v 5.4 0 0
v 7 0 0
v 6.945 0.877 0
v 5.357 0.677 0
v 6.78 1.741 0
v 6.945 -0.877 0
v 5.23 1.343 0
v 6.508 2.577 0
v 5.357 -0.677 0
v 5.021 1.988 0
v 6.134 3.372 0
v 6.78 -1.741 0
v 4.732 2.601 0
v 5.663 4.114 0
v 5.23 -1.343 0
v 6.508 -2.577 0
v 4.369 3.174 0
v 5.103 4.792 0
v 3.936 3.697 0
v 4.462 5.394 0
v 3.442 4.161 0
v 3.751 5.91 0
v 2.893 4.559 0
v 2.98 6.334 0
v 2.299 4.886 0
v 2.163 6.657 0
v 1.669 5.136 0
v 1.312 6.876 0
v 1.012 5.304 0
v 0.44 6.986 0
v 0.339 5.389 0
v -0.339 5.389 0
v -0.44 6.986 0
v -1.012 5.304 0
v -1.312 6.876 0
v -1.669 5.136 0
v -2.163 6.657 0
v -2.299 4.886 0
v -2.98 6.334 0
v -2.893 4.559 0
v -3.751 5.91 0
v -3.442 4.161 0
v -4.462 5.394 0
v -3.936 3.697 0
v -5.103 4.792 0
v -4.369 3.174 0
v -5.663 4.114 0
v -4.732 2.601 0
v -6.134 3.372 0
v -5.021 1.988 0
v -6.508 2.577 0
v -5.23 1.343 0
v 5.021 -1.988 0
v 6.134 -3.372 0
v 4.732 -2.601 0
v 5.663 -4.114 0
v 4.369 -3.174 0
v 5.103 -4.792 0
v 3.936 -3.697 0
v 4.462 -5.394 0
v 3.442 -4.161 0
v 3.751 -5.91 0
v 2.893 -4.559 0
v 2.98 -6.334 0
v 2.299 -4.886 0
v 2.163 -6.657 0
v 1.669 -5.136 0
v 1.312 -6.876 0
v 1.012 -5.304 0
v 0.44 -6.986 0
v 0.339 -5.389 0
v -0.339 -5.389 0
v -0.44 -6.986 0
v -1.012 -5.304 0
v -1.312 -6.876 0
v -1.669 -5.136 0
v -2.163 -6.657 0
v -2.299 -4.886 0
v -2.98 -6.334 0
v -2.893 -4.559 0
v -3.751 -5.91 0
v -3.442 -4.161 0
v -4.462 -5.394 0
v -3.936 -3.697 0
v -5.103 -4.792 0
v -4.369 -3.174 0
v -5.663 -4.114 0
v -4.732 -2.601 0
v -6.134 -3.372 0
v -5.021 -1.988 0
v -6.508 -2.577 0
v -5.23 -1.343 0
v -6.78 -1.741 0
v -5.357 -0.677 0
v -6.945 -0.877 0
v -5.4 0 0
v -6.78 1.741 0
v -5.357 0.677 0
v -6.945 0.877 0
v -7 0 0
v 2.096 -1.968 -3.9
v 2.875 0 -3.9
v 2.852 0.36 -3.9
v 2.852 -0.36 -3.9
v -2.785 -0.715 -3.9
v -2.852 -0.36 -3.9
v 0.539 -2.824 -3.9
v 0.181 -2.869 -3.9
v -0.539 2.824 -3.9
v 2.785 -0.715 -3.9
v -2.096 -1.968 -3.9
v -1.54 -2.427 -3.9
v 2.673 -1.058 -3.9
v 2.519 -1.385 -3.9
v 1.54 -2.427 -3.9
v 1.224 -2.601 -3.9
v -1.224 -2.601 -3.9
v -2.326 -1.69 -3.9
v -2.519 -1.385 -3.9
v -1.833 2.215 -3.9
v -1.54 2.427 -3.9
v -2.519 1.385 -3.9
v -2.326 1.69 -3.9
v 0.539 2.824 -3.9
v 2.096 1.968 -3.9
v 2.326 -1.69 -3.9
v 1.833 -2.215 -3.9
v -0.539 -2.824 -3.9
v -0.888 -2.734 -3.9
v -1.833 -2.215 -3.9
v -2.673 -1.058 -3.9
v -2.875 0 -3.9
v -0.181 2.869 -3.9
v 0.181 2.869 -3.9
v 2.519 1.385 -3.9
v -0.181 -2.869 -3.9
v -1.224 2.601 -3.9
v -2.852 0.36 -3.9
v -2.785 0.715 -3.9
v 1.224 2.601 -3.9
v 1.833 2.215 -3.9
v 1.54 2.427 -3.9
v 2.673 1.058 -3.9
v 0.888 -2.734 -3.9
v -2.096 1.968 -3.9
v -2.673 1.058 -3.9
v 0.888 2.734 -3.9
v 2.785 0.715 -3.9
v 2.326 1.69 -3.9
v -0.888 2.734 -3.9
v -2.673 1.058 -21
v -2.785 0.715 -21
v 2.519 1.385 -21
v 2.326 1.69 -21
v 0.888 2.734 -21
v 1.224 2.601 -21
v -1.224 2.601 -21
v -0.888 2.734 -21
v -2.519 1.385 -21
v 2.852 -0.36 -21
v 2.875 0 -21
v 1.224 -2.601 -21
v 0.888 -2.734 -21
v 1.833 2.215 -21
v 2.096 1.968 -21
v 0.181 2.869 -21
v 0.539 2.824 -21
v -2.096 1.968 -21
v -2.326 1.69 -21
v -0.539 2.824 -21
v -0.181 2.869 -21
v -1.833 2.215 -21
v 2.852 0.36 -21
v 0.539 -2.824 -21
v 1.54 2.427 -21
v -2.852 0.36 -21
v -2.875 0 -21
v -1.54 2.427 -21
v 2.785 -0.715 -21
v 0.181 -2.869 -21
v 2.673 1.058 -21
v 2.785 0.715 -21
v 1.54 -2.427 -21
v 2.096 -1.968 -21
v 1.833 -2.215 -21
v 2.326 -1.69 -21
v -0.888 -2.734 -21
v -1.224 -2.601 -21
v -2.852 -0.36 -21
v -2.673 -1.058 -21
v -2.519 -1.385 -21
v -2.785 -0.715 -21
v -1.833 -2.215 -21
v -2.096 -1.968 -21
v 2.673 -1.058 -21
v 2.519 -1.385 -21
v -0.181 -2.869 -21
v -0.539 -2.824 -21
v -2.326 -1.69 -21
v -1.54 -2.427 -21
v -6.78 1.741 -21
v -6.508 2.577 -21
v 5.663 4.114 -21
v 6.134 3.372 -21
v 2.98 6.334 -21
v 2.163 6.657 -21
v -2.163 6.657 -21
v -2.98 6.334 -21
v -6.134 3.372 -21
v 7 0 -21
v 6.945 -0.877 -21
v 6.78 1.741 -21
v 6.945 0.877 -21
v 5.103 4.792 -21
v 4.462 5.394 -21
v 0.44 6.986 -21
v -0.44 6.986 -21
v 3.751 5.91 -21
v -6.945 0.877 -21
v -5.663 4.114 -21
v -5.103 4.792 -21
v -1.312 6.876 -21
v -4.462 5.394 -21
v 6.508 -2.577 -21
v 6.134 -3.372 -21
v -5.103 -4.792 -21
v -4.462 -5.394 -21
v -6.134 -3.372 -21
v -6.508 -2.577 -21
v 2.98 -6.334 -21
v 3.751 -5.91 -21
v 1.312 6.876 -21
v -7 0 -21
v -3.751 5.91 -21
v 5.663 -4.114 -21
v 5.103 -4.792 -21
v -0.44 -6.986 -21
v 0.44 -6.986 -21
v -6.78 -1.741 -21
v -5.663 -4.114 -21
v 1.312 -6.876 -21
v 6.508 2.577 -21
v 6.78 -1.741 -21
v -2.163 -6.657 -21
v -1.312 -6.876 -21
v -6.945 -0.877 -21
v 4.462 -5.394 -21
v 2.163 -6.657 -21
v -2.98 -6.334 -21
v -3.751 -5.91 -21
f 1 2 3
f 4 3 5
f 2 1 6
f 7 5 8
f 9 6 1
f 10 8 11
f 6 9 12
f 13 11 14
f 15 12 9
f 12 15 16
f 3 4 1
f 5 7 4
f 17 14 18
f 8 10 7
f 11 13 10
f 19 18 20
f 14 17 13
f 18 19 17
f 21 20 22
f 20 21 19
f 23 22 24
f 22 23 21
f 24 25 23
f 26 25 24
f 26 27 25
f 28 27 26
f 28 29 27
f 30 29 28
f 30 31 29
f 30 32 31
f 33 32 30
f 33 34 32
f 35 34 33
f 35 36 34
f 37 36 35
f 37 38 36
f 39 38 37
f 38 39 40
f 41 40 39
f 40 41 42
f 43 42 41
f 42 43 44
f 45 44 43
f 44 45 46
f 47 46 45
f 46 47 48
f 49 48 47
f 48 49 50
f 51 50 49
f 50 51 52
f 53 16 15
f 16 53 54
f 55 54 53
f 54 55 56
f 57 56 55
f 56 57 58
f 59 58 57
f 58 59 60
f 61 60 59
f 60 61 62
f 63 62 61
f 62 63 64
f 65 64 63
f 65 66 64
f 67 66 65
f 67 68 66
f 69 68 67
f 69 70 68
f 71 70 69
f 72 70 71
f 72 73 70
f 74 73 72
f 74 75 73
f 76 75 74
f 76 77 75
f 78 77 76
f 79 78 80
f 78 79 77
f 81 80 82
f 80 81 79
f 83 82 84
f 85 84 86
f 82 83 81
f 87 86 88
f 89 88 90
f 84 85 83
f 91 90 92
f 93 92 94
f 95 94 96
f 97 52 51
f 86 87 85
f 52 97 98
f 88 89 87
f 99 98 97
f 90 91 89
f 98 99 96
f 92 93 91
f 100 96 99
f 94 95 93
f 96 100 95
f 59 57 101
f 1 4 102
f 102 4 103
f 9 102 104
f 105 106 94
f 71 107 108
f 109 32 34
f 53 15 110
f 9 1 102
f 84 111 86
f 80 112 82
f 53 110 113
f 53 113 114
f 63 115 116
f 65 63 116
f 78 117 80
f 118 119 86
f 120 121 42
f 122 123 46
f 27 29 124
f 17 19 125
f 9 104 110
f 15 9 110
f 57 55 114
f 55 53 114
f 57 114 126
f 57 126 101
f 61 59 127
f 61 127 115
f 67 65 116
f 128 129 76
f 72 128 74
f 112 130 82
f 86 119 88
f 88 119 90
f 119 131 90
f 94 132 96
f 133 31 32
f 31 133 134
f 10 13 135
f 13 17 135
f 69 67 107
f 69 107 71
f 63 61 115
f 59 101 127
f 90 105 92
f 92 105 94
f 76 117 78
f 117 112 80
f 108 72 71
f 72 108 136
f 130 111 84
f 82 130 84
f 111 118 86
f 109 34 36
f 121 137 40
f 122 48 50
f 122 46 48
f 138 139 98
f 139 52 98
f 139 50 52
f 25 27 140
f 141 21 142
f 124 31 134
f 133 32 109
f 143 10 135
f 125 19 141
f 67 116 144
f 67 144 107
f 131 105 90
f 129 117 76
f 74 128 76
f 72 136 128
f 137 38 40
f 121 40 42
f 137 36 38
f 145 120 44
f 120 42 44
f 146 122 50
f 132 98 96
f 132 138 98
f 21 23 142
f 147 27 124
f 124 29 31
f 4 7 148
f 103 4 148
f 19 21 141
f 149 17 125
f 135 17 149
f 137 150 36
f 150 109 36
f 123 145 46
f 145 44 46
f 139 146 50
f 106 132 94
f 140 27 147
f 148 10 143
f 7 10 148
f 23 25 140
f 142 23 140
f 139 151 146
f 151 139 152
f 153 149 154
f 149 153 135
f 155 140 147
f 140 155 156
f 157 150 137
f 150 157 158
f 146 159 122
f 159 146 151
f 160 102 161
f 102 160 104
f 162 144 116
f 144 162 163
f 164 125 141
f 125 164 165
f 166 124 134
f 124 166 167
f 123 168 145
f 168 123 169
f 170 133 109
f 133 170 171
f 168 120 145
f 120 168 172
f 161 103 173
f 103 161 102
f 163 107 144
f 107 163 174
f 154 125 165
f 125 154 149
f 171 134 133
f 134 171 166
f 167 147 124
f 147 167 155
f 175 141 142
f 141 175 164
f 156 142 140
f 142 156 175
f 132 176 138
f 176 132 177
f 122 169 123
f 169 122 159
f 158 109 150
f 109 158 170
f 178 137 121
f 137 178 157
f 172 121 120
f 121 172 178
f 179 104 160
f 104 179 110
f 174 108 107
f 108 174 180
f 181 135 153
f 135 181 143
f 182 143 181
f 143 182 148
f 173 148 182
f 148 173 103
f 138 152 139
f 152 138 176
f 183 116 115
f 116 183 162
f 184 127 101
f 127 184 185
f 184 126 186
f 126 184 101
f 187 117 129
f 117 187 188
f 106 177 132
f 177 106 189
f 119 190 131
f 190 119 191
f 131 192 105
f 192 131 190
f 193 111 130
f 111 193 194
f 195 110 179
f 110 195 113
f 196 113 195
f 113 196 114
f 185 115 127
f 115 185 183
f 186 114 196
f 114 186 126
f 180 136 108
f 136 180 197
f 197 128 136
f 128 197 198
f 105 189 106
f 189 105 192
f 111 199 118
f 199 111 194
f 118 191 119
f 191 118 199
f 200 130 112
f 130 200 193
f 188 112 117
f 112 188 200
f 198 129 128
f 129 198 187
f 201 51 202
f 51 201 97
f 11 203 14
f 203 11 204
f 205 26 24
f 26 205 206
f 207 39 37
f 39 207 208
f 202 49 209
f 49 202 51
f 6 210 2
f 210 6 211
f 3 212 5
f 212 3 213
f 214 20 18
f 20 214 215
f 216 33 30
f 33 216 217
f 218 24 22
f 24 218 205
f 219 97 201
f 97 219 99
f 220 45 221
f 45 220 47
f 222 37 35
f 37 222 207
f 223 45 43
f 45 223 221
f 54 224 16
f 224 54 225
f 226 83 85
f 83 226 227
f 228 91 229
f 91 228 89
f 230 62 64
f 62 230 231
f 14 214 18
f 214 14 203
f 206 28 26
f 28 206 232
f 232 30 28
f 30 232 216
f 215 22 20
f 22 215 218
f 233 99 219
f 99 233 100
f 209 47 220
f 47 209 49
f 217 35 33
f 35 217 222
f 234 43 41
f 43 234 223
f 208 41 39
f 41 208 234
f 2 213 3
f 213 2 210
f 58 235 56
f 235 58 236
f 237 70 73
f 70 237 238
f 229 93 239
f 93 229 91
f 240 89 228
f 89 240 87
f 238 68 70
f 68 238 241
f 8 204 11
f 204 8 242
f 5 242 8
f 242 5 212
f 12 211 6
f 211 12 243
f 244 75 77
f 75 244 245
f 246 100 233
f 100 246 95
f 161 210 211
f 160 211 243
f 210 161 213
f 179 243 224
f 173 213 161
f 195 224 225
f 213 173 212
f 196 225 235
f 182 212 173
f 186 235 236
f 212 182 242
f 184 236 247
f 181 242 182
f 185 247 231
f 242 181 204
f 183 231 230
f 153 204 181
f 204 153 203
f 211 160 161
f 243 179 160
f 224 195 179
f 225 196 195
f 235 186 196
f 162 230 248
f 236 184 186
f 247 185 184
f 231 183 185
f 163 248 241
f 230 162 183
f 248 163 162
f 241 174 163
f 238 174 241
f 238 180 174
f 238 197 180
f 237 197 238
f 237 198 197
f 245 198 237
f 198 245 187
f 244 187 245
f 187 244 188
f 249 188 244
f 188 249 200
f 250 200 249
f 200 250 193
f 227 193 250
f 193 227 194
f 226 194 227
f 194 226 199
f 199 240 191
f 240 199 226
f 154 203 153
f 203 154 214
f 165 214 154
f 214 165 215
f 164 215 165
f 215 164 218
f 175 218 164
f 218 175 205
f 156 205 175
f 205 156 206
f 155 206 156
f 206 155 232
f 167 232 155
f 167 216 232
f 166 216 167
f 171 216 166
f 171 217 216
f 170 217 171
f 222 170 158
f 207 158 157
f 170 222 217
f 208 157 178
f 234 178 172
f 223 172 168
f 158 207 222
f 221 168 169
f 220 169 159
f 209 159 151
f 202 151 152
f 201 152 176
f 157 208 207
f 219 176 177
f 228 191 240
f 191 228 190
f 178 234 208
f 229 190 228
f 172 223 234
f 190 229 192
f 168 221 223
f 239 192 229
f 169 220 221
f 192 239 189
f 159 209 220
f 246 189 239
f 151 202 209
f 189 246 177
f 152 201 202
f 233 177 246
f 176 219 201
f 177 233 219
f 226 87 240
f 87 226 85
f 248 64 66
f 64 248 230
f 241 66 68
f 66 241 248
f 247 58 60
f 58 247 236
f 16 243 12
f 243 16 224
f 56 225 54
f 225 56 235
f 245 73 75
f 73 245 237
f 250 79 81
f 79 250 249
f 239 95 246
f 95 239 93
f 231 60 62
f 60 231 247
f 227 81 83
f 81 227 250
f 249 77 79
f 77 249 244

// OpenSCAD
$fn = 50;


difference() {
	union() {
		translate(v = [0, 0, -21.0000000000]) {
			cylinder(h = 21, r = 7.0000000000);
		}
	}
	union() {
		translate(v = [0, 0, 0]) {
			rotate(a = [0, 0, 0]) {
				difference() {
					union() {
						translate(v = [0, 0, -24.0000000000]) {
							cylinder(h = 24, r = 2.6000000000);
						}
						translate(v = [0, 0, -3.9000000000]) {
							cylinder(h = 3.9000000000, r1 = 2.8750000000, r2 = 5.4000000000);
						}
						translate(v = [0, 0, -24.0000000000]) {
							cylinder(h = 24, r = 2.8750000000);
						}
						translate(v = [0, 0, -24.0000000000]) {
							cylinder(h = 24, r = 2.6000000000);
						}
					}
					union();
				}
			}
		}
	}
}
